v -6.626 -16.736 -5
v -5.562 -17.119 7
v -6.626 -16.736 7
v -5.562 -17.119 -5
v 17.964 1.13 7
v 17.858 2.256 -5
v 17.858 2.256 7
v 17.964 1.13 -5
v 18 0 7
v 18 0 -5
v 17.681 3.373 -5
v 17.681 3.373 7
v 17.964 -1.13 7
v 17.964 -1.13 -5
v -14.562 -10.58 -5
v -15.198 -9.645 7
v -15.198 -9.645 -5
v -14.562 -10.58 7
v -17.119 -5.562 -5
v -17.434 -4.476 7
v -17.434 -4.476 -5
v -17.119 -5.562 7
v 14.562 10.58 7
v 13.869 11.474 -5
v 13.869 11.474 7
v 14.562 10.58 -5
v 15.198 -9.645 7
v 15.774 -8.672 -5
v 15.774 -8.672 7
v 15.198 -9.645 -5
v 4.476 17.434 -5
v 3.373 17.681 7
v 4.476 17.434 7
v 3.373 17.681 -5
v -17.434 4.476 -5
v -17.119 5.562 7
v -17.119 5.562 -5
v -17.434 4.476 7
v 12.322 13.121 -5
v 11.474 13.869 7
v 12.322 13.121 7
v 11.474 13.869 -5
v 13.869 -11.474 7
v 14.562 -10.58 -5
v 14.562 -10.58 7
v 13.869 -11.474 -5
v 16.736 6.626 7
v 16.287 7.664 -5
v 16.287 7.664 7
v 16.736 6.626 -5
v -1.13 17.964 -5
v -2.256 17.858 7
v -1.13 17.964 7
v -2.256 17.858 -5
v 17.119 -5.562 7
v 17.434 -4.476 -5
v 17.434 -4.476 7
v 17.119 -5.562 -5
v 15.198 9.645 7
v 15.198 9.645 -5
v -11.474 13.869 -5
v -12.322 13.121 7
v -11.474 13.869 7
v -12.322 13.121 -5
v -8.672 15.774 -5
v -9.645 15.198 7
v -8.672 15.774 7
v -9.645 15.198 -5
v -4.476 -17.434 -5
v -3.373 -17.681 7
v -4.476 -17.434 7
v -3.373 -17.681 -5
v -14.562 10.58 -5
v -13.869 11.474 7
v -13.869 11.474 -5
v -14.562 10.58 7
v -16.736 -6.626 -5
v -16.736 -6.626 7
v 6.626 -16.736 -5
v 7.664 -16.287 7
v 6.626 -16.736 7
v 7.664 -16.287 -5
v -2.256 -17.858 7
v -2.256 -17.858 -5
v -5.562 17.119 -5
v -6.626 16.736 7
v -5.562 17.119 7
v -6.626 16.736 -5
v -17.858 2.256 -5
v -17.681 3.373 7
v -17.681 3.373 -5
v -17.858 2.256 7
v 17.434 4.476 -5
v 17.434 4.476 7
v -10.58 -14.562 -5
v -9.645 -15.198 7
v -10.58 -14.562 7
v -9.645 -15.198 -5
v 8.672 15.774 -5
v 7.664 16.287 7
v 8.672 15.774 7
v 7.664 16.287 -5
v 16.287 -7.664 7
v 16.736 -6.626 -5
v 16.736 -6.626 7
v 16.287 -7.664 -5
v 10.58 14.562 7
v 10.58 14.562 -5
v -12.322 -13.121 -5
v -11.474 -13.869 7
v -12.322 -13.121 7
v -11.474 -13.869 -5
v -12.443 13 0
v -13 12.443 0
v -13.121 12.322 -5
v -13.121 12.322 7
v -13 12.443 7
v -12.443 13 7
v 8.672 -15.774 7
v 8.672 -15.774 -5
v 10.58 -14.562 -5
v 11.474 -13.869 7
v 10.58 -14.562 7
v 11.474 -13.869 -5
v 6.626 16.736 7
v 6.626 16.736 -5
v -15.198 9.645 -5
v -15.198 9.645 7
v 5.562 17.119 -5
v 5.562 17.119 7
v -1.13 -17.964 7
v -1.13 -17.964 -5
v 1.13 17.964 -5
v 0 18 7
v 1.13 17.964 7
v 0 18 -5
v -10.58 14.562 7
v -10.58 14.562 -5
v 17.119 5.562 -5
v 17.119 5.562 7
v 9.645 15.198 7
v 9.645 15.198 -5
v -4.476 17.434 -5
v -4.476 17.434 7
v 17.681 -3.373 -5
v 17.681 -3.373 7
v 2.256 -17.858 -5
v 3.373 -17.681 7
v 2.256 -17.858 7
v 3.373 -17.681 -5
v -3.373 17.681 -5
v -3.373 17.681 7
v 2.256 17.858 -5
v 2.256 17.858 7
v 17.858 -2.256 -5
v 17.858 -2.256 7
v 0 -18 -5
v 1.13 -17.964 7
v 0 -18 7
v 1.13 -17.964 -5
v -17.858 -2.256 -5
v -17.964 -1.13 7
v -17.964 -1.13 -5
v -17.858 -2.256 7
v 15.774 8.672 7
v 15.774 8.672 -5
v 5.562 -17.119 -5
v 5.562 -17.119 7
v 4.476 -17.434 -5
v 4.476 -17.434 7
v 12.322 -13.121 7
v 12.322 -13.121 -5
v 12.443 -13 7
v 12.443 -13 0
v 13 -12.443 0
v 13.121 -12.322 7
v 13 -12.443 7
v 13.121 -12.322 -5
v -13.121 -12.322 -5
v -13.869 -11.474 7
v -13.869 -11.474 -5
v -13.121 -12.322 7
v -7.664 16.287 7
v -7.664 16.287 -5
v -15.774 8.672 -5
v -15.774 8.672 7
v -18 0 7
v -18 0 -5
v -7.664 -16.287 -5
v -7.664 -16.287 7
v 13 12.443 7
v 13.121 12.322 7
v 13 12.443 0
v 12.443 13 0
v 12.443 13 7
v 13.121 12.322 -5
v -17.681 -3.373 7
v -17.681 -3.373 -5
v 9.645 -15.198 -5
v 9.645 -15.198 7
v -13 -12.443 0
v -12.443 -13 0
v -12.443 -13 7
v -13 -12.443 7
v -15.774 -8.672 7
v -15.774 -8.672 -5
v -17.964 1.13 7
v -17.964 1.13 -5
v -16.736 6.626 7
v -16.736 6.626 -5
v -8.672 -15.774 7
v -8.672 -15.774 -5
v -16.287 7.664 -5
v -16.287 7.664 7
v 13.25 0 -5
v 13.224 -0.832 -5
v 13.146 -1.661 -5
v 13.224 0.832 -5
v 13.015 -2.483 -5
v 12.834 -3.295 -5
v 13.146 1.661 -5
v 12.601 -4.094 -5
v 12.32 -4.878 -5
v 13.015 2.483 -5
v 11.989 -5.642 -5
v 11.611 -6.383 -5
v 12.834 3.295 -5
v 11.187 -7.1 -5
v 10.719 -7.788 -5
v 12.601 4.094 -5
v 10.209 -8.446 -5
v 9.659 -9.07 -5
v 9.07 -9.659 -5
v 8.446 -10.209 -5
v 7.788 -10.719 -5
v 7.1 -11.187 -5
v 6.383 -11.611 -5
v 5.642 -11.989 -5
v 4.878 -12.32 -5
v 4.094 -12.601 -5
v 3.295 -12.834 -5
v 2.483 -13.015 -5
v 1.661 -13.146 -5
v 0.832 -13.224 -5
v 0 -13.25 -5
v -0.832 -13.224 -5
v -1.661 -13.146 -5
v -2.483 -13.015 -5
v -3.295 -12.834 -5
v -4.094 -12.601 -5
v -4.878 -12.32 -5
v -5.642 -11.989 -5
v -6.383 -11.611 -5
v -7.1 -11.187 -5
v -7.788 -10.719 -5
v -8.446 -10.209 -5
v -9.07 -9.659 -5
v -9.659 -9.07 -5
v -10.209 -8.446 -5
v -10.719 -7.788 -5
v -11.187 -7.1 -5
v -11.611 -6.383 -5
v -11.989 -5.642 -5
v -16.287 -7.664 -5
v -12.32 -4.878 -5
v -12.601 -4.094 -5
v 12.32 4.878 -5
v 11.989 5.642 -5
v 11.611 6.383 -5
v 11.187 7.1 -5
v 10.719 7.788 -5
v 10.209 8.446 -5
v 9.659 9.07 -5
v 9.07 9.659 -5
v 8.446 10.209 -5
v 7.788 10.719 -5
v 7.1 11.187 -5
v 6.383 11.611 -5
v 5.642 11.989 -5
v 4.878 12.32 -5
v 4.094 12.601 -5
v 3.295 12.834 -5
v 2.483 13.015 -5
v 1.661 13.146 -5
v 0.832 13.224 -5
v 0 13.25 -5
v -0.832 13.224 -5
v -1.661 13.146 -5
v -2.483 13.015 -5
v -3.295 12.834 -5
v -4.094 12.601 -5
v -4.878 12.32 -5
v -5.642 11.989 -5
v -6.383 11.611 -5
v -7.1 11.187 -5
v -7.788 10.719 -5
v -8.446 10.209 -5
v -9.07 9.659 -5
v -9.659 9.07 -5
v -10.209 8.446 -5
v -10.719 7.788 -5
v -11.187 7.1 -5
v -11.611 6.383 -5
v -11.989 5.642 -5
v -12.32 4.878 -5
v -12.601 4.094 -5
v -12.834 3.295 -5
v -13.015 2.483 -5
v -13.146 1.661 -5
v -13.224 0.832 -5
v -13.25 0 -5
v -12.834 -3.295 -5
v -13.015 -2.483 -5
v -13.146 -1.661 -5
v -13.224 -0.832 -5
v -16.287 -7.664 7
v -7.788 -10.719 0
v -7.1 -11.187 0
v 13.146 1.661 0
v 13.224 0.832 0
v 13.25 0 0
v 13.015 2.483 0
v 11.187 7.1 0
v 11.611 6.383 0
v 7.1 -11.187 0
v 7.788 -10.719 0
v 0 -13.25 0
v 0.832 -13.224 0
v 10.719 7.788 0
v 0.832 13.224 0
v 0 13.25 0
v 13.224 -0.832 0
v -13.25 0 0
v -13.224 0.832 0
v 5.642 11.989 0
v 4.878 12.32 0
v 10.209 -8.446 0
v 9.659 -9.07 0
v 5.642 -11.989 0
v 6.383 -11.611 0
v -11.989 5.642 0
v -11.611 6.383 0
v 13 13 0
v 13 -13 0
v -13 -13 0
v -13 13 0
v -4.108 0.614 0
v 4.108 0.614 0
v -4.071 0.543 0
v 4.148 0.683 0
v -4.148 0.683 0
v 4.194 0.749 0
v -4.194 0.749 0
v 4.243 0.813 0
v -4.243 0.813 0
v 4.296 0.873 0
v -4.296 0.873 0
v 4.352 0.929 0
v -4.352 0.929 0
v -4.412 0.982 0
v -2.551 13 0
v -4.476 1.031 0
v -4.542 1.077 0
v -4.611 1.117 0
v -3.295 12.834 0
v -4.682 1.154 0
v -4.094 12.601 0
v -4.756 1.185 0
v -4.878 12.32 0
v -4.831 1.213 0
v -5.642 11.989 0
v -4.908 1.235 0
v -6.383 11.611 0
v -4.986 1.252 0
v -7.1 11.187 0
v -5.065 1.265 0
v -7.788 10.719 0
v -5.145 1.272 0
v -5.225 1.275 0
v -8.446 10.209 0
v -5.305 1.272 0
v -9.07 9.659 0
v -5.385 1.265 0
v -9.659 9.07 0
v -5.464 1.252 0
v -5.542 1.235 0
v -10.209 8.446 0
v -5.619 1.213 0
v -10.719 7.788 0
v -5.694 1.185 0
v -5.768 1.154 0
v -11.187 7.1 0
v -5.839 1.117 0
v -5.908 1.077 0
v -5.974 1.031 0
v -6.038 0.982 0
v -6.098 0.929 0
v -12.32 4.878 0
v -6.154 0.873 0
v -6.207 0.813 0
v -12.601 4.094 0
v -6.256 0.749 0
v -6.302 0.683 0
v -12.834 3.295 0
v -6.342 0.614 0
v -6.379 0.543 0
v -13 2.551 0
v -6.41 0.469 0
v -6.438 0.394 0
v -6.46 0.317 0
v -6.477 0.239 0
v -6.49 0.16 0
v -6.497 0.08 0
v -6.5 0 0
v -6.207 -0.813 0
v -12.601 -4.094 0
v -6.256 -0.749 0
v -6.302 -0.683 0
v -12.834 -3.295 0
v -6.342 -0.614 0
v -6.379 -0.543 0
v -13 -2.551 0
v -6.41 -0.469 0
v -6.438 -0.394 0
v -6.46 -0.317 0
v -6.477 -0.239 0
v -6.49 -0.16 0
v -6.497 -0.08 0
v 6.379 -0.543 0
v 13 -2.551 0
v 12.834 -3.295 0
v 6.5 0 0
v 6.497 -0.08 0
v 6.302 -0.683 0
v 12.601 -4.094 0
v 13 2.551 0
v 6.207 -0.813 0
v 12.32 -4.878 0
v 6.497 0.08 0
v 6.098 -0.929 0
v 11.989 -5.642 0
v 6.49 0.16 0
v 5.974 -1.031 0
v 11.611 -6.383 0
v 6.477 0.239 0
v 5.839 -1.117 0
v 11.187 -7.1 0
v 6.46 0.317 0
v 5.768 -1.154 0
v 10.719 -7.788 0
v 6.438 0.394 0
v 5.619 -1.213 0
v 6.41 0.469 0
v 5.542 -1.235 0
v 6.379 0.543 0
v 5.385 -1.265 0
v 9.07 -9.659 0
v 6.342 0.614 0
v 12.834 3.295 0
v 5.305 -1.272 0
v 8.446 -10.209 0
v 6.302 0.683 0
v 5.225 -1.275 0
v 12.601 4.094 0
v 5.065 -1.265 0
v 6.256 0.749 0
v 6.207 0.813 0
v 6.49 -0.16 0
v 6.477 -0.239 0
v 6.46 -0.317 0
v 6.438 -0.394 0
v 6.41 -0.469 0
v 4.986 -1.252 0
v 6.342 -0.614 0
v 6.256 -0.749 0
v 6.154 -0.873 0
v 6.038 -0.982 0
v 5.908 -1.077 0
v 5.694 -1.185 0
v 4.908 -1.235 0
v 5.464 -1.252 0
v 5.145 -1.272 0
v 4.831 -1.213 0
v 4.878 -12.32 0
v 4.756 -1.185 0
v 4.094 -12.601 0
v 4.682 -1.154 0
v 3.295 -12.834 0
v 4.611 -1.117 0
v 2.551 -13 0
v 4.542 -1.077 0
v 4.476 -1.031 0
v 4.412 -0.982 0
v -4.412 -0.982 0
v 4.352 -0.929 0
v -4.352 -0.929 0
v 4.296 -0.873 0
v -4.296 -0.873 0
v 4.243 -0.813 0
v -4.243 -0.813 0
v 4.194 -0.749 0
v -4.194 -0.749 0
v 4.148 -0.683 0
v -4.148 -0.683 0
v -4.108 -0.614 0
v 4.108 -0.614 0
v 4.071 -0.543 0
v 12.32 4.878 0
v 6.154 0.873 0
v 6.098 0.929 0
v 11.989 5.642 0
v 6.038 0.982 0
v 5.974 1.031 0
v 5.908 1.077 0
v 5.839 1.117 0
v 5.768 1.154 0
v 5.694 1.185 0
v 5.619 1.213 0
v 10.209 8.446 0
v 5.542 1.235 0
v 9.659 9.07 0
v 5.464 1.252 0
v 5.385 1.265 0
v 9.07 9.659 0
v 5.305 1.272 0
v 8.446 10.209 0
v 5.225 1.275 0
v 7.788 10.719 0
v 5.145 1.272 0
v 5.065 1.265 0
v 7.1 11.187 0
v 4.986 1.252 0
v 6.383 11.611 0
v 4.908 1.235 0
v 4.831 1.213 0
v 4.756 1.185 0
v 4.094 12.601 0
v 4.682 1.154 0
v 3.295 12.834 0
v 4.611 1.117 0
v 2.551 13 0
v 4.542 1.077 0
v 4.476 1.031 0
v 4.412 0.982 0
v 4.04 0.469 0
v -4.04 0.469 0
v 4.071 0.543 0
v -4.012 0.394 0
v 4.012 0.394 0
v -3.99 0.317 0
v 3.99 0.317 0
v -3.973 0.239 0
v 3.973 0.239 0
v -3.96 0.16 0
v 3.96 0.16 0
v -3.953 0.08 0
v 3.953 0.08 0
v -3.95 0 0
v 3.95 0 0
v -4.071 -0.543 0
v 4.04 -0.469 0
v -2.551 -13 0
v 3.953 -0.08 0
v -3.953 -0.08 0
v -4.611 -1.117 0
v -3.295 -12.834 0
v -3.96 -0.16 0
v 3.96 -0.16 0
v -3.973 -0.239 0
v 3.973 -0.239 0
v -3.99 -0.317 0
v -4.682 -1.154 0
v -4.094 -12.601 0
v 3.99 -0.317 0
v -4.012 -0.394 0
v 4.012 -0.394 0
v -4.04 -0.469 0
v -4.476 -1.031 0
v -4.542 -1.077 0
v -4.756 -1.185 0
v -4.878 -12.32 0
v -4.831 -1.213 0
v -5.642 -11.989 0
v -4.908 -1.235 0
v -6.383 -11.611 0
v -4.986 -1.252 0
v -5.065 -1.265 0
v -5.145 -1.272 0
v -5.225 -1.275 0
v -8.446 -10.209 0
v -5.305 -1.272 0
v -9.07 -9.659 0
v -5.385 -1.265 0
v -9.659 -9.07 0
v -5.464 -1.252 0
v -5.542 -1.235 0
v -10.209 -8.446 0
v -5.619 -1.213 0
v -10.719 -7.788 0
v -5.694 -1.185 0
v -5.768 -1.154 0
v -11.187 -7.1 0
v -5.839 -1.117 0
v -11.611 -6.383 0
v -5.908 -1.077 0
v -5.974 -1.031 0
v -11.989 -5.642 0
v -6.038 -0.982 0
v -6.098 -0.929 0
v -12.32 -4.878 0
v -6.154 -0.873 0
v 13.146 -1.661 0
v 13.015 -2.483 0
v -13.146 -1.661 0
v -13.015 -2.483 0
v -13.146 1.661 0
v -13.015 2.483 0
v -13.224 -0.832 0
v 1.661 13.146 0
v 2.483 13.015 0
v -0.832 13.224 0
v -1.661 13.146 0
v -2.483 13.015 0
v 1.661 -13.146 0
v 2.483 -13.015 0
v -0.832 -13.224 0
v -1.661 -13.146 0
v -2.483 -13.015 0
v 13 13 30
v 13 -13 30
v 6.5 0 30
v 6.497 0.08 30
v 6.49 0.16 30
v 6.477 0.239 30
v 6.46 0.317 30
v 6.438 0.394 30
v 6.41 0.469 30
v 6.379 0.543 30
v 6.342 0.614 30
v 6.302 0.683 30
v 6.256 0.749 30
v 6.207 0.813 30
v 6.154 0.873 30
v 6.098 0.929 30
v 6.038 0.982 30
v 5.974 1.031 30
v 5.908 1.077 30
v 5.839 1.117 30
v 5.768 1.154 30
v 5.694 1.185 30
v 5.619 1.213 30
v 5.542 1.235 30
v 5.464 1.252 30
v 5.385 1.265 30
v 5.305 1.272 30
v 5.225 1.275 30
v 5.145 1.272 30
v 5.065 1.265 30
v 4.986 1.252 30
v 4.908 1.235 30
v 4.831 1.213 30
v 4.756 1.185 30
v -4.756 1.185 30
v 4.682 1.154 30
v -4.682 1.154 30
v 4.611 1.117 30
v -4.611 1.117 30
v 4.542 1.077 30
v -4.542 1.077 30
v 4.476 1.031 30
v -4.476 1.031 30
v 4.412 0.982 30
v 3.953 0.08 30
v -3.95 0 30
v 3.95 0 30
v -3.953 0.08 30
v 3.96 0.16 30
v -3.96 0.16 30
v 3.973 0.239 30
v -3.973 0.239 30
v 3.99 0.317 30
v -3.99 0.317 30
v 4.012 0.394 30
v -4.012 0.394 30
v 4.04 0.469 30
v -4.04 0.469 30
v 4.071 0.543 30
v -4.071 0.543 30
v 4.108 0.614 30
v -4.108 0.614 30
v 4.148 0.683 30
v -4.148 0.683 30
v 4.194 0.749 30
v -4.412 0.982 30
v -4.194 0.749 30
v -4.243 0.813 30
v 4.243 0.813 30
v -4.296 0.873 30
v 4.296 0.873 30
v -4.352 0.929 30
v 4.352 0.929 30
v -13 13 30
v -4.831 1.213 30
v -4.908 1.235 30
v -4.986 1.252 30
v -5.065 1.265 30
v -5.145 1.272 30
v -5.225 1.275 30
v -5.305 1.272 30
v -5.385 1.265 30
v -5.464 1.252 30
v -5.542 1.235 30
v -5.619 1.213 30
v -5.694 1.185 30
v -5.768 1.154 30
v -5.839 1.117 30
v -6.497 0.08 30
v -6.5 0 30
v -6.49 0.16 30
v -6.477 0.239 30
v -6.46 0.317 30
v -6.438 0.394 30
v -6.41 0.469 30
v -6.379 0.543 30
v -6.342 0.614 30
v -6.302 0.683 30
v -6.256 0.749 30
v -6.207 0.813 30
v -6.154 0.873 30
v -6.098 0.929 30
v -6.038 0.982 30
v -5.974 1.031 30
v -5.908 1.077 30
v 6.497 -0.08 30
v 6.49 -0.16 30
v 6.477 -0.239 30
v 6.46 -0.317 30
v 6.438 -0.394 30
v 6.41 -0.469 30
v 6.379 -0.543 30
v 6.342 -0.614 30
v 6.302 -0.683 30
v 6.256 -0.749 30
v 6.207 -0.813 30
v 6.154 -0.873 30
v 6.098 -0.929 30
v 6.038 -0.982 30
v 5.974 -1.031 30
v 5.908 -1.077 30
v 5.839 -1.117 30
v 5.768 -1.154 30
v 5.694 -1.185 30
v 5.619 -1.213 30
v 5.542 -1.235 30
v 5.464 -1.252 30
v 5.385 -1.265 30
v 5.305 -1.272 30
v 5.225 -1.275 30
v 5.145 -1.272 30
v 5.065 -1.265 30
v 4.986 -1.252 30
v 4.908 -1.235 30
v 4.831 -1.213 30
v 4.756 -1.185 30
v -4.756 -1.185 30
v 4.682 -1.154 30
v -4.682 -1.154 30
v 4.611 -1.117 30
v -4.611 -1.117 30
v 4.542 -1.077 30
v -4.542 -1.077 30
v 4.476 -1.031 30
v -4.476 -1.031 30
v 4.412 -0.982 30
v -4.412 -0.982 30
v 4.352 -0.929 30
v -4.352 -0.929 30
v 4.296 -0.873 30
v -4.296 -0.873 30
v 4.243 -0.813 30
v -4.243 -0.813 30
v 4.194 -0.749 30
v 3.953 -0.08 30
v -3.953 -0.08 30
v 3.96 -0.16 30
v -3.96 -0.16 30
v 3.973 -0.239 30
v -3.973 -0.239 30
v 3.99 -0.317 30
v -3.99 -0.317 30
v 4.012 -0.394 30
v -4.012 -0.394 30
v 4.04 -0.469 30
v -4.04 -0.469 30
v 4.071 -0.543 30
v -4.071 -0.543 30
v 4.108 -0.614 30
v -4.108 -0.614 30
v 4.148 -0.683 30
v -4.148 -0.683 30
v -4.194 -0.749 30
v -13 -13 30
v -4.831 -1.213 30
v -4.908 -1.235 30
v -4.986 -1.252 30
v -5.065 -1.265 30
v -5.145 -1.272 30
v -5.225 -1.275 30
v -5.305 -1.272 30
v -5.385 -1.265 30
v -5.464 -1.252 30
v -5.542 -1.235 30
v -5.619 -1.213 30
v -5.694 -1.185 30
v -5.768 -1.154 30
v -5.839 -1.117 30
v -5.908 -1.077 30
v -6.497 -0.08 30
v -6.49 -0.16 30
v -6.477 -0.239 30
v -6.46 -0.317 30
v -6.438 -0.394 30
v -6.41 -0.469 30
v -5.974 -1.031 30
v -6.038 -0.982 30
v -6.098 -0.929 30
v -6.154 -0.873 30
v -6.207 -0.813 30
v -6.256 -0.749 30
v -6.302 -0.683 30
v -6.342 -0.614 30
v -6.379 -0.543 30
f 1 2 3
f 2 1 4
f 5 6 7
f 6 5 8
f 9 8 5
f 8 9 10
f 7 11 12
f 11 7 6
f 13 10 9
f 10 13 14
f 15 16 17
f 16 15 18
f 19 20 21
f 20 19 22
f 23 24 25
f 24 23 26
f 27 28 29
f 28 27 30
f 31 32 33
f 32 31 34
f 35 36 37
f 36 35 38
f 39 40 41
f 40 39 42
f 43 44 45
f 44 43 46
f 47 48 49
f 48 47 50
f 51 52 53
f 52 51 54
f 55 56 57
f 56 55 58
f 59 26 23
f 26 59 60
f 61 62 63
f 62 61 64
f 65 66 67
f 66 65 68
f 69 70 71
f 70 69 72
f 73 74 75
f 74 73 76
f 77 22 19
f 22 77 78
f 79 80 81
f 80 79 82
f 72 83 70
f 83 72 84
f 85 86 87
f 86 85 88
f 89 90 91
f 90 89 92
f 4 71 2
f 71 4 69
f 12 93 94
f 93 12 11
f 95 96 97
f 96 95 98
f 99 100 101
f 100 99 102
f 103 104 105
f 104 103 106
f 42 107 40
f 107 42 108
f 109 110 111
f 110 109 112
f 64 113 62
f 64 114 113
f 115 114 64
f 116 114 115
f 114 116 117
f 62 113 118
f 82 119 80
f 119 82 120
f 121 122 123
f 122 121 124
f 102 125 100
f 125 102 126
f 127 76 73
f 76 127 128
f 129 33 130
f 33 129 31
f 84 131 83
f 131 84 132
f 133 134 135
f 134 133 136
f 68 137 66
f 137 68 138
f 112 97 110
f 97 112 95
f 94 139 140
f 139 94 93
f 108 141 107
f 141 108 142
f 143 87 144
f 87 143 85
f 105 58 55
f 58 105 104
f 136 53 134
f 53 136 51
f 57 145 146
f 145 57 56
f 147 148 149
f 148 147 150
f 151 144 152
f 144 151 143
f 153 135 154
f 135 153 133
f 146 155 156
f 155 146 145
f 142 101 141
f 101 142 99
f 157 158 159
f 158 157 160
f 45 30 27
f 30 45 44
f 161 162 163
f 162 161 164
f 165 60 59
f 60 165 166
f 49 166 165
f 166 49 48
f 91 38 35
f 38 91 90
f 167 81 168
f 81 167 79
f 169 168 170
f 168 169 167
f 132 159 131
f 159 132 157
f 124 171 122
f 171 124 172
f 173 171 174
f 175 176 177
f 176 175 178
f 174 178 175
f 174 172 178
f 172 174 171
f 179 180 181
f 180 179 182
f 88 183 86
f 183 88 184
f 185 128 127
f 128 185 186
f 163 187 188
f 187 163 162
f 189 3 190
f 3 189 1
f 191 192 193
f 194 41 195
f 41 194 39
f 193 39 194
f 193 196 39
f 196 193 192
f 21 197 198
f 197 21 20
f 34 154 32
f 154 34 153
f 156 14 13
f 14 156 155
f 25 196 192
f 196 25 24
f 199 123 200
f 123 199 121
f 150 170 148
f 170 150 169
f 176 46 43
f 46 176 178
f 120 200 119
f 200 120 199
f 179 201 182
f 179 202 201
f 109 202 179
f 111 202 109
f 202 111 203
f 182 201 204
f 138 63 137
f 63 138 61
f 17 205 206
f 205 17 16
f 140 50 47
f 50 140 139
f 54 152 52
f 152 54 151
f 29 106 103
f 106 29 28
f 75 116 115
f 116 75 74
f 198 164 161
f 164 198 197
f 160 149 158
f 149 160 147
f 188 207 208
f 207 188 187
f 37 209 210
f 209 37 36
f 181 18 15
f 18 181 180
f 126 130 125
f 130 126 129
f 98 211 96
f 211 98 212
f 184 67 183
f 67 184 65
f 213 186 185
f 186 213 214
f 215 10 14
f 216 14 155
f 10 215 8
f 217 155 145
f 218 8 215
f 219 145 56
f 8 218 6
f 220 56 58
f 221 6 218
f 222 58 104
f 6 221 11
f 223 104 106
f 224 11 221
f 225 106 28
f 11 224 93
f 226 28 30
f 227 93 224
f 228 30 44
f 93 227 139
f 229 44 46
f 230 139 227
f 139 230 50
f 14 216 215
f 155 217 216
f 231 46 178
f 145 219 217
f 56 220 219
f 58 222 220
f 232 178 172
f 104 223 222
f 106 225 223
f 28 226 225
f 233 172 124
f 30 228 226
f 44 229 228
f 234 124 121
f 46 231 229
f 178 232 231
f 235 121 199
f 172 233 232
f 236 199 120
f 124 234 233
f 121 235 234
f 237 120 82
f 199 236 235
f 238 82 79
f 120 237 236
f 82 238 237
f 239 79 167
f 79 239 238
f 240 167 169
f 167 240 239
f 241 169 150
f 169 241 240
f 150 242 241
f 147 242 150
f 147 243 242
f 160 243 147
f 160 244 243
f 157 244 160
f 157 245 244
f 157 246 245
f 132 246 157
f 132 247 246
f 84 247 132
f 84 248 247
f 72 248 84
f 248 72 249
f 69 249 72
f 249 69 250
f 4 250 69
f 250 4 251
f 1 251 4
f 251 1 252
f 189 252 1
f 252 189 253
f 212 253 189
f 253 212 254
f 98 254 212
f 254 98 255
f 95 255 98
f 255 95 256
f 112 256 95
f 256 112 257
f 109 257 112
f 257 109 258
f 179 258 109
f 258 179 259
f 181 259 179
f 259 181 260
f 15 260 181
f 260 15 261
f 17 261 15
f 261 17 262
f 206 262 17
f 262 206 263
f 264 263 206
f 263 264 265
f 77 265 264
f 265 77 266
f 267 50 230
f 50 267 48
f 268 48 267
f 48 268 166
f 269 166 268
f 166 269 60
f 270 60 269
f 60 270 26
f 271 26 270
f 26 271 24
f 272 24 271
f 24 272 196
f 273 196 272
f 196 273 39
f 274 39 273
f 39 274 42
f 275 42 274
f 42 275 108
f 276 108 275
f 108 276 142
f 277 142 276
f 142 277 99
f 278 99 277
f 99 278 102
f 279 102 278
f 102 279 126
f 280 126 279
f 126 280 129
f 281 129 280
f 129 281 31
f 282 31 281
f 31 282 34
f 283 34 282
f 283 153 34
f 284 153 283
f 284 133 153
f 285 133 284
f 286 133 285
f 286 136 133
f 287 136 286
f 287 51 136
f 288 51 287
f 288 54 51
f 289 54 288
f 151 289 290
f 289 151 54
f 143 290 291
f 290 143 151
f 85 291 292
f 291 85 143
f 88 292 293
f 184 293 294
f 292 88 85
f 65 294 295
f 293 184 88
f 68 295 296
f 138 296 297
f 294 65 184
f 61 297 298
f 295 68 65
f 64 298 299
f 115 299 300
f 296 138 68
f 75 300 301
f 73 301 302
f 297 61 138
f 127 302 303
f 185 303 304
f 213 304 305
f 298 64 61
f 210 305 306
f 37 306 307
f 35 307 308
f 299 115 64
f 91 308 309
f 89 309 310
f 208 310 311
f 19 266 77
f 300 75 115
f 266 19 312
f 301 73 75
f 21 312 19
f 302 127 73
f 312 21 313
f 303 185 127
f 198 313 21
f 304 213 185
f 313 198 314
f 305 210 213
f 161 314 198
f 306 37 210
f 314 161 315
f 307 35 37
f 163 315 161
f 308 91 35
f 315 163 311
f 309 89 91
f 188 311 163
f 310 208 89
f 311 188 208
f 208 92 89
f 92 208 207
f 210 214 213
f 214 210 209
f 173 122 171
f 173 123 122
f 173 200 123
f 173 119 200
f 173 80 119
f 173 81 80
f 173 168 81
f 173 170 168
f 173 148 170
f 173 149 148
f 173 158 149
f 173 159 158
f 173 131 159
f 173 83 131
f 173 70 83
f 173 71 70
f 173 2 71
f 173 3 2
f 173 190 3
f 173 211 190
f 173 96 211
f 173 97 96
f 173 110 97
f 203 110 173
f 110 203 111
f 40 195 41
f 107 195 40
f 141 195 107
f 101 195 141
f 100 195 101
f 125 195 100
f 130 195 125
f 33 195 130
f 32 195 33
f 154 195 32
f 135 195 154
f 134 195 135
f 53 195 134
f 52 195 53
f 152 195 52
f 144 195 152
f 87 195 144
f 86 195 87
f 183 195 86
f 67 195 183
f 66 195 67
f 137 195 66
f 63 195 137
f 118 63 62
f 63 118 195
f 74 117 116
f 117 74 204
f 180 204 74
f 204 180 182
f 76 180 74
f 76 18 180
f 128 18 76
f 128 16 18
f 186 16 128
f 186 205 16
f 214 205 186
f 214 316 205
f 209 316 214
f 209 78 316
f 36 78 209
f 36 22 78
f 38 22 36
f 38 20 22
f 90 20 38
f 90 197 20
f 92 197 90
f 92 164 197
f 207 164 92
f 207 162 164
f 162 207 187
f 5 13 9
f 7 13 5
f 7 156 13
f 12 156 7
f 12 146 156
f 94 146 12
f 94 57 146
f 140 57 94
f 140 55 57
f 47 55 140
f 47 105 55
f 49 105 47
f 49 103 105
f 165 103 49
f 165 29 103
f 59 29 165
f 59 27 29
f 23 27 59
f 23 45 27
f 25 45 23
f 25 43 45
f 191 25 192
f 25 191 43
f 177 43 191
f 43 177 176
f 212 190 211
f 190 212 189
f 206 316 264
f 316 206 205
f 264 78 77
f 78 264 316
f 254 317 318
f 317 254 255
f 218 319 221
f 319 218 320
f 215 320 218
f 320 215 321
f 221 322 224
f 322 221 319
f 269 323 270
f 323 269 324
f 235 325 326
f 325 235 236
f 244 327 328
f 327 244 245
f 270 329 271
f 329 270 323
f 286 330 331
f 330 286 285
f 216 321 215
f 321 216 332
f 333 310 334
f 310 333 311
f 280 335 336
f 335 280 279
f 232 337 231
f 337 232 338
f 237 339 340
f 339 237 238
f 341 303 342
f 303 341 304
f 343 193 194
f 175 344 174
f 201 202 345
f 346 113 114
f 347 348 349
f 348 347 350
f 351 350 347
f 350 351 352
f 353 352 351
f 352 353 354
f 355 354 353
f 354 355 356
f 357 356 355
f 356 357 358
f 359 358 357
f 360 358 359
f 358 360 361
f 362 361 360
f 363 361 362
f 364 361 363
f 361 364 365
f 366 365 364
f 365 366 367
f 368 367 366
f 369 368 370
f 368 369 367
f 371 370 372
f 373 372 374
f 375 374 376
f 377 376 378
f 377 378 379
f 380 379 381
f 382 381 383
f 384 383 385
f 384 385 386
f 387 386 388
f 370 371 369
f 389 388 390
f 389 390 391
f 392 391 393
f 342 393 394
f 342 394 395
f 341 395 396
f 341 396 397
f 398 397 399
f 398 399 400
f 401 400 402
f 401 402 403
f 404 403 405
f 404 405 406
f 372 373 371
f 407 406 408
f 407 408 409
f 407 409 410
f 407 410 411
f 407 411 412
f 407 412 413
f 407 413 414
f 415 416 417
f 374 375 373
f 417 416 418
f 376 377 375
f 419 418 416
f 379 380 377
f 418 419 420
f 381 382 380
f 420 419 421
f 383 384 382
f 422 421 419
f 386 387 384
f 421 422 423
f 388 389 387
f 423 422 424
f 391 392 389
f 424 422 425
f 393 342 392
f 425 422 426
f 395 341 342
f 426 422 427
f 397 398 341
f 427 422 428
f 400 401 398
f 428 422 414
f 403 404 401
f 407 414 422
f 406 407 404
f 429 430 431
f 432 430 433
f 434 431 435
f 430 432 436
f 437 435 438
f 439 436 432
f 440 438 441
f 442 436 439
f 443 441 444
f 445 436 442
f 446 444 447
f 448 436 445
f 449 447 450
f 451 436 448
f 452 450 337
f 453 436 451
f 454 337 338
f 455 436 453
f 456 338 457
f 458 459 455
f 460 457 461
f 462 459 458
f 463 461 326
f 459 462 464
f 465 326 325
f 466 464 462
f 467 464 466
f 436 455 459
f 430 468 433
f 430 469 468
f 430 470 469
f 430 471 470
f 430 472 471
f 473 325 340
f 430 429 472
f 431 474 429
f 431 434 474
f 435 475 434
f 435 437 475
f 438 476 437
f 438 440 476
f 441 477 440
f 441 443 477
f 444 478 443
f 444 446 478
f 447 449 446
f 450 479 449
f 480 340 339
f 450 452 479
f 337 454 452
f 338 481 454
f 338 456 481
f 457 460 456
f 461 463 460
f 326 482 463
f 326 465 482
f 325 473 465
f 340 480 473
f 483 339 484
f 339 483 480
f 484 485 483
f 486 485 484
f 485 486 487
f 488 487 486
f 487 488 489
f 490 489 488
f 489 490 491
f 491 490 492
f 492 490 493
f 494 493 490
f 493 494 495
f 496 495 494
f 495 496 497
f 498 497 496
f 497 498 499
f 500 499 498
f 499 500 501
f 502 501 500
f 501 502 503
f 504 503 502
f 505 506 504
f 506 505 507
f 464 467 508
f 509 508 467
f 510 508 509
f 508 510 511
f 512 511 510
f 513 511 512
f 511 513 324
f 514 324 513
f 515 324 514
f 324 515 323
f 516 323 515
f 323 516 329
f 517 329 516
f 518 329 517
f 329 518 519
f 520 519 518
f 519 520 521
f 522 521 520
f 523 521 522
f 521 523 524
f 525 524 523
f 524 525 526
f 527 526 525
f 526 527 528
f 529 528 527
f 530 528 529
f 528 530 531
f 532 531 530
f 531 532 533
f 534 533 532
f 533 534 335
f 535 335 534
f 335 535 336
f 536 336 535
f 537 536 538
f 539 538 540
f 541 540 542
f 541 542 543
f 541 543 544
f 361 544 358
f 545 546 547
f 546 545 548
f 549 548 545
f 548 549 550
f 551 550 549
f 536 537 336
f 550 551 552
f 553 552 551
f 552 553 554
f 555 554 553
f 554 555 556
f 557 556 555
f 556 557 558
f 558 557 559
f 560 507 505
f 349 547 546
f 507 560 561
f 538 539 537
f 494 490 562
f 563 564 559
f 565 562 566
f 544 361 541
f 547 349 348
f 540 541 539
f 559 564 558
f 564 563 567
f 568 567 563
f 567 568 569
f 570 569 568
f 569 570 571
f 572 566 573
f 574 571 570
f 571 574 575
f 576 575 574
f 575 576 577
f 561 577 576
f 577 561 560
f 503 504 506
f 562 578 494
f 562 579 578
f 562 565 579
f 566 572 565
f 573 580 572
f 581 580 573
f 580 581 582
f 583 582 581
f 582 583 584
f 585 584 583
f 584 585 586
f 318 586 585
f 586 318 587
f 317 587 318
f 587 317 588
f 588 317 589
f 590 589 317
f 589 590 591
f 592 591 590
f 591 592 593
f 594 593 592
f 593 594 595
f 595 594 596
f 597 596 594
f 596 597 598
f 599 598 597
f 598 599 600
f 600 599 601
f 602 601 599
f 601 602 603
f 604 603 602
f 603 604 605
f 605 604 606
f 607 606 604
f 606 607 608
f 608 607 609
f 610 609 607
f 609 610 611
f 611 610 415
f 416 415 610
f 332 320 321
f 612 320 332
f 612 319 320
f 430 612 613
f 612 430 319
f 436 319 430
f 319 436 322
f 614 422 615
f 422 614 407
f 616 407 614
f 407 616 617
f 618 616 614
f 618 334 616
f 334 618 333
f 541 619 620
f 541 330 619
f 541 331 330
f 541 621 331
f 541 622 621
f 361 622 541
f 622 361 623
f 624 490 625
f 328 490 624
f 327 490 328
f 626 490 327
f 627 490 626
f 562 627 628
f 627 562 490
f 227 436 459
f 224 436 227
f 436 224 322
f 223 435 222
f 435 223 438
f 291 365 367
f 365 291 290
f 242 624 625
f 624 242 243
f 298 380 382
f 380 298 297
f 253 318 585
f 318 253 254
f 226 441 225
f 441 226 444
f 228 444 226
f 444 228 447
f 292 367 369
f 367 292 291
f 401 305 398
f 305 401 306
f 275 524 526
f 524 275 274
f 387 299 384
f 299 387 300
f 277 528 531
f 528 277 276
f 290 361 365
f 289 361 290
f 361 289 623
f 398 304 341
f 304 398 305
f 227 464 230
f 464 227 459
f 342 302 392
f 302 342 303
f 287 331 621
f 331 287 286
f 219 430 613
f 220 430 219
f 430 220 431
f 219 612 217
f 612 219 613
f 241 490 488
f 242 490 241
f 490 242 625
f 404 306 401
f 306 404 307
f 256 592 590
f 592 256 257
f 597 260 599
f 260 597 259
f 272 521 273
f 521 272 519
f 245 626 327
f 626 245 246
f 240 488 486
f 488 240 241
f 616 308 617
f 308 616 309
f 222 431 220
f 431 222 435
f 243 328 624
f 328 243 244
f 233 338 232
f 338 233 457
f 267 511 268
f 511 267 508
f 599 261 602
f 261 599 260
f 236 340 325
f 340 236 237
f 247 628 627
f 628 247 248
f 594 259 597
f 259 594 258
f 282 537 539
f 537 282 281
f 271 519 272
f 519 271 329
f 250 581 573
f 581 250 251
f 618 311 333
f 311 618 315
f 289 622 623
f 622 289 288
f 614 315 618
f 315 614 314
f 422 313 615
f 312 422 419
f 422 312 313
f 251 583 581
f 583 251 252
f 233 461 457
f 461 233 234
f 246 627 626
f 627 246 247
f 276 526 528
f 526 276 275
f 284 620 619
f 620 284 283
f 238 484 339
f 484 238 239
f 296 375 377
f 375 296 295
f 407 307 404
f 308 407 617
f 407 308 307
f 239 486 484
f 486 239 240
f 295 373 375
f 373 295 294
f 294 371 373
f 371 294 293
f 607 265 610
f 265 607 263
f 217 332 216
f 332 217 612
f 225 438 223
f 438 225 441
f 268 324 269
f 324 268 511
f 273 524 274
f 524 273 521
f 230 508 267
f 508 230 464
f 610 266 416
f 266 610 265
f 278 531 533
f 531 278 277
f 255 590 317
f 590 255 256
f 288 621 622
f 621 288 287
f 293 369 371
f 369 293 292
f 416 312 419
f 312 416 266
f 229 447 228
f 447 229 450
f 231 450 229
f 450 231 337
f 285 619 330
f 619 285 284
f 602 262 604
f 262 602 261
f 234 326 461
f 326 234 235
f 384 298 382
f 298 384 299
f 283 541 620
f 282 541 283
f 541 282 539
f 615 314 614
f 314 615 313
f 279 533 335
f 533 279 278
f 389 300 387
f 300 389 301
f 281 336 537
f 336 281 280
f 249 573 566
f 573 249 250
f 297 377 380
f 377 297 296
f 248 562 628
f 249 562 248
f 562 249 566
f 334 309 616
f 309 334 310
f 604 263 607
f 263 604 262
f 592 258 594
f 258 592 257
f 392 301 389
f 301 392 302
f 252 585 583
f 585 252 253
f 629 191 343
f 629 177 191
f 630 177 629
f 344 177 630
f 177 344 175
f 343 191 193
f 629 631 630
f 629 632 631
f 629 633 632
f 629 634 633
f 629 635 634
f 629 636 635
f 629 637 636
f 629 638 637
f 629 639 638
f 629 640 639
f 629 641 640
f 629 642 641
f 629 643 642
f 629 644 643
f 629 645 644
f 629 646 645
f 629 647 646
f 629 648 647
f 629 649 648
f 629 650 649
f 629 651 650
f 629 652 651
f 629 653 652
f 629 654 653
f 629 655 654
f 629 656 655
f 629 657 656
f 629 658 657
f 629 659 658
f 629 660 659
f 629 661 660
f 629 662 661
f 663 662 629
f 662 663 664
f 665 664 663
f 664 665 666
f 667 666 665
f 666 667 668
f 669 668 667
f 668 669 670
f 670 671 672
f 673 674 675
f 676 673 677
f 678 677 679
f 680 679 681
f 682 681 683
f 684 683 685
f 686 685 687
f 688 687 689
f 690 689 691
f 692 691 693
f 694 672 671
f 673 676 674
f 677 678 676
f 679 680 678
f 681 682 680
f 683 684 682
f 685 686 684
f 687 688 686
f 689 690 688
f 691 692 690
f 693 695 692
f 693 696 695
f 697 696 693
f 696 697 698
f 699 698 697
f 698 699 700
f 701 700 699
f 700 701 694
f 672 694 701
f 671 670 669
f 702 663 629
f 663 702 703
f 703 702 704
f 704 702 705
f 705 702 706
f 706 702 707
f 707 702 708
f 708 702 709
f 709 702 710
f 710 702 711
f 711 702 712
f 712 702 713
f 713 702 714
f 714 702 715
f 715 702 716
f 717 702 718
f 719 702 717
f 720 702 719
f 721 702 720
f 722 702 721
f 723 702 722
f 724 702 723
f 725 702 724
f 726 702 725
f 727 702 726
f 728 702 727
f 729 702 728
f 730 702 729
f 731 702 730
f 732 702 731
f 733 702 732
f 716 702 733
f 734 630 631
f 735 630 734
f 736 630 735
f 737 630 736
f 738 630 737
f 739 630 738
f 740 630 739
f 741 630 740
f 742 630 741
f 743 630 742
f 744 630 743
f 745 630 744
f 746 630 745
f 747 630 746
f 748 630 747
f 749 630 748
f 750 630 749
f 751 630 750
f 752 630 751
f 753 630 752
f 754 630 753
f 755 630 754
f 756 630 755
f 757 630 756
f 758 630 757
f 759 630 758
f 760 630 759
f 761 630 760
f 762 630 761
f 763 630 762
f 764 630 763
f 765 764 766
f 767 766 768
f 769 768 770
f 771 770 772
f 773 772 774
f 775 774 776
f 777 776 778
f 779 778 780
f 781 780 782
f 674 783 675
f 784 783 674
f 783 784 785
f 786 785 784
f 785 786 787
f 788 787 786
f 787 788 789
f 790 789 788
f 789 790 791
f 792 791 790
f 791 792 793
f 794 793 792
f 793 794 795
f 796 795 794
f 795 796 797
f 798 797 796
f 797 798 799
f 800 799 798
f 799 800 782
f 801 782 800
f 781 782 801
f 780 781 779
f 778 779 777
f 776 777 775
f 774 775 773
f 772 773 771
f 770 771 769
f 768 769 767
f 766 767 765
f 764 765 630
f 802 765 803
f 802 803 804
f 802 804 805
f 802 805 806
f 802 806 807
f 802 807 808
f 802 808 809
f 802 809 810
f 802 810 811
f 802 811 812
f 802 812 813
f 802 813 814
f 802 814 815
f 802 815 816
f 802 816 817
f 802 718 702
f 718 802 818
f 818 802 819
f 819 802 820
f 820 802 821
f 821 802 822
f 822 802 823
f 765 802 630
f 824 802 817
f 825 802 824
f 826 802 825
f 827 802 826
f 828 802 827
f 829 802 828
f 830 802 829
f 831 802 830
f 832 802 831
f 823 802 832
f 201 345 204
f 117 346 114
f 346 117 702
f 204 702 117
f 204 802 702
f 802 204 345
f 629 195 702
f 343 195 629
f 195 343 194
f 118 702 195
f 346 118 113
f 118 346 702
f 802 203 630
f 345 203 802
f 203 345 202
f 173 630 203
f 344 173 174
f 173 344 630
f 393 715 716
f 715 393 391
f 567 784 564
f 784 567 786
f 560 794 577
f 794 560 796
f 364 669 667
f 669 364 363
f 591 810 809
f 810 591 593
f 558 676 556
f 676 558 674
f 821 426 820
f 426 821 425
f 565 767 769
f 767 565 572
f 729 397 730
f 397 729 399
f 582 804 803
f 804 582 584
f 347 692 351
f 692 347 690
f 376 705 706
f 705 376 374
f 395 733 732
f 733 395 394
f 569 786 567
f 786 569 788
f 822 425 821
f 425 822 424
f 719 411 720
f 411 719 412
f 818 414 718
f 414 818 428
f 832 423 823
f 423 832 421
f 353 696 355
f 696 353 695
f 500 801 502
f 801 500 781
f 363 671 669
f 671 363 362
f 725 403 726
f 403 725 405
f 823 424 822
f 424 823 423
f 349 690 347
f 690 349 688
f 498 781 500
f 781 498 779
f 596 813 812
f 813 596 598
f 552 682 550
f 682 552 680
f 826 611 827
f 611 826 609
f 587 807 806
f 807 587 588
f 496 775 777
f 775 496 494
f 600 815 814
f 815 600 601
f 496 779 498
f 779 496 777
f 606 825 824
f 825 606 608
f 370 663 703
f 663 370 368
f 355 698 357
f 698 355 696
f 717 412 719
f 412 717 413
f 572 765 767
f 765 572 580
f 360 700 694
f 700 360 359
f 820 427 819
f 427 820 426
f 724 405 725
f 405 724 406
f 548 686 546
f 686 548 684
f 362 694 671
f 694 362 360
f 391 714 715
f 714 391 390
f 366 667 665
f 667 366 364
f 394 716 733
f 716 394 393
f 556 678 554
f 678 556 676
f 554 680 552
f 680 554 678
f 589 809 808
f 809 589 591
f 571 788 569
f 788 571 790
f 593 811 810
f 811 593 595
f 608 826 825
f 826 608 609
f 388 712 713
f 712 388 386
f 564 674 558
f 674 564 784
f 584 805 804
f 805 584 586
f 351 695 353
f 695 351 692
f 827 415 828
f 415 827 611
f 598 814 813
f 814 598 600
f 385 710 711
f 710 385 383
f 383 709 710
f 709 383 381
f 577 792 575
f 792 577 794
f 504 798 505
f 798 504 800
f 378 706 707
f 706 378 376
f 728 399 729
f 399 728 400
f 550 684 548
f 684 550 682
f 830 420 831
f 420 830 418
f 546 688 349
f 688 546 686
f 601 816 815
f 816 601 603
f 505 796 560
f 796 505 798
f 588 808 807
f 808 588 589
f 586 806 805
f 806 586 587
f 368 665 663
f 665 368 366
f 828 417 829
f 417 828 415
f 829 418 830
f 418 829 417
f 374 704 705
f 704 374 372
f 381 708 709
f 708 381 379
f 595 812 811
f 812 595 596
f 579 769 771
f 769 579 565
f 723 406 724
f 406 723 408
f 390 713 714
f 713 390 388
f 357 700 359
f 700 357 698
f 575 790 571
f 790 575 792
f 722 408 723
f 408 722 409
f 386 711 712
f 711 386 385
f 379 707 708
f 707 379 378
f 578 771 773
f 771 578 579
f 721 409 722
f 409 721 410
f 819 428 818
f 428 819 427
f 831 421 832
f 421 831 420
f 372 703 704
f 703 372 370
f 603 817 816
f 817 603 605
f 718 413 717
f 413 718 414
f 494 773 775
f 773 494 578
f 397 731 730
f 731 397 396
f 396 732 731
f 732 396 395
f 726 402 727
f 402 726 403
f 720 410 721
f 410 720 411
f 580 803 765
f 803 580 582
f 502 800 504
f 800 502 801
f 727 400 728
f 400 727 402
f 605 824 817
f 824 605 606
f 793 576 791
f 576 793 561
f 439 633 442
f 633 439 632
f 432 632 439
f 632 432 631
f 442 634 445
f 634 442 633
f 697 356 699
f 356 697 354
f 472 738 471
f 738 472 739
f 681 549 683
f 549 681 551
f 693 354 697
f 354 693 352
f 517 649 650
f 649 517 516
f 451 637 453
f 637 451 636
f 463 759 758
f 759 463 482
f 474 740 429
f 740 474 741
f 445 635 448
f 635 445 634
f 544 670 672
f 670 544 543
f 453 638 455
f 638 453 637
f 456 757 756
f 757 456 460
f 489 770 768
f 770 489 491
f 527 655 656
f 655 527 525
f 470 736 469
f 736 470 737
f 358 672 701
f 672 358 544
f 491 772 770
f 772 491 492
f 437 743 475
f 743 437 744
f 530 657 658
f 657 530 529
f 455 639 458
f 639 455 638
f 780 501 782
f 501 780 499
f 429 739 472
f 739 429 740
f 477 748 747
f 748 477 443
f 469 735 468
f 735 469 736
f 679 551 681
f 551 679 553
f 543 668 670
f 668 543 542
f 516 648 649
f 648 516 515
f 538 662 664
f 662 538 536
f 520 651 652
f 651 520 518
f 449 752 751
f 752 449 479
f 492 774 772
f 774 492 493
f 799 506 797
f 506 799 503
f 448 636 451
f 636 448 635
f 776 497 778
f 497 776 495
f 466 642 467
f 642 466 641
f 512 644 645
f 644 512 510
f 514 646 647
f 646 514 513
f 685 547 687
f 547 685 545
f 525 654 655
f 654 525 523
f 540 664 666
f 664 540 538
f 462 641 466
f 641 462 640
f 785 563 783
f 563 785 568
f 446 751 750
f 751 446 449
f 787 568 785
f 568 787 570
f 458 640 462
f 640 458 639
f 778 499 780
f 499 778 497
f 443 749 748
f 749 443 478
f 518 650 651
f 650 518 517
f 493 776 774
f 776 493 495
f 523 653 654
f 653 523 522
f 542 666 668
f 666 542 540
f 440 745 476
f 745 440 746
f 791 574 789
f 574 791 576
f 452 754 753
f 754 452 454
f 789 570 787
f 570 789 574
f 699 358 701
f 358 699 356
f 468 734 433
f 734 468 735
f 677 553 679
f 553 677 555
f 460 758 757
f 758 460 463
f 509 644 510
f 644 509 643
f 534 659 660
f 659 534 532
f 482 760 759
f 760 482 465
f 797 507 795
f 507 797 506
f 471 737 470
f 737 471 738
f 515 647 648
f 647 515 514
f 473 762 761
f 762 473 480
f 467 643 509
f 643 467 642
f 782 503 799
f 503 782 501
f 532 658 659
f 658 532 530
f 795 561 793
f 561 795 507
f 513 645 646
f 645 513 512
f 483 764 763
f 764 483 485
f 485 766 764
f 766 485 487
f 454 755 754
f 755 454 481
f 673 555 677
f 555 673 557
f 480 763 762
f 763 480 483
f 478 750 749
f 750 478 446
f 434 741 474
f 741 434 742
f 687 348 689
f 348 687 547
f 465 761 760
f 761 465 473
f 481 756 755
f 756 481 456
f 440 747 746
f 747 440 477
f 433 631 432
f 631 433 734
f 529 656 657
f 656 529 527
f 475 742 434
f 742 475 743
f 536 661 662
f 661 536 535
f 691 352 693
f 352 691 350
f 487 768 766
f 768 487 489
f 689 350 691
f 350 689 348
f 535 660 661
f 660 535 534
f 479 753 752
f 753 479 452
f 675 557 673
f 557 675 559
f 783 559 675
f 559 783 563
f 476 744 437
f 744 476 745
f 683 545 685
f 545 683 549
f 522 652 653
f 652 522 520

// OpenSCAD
/**
 * Motor Brush Cap Remover Tool
 *
 * Description:
 * Specialized 3D printable tool to safely remove motor brush caps on Brushed DC Motors
 * for maintenance access when the caps have been damaged. Features two pin holes 
 * that when drilled into the cap, engage the cap in lieu of the slot. Square drive 
 * shaft for grip with an adjustable wrench. 
 *
 * Usage:
 * 1. Open this file in OpenSCAD.
 * 2. Render (F6) and export as STL.
 * 3. 3D print the tool (no supports needed).
 * 4. Drill the holes through the tool into the cap.
 * 5. Use nails through the holes to remove the stuck cap.
 *
 * Photos and instructions online at https://github.com/AntzCode/OpenSCAD-Projects
 *
 * Parameters (customizable at top):
 * - cube_length: Length of the handle (30mm default)
 * - cube_width: Width of the handle (26mm default)
 * - cylinder_width_inner/outer: Grip dimensions
 * - pin_width/distance: Pin dimensions for cap engagement
 *
 * Author: Anthony Gallon
 * Owner/Licensor: AntzCode Ltd <https://www.antzcode.com>
 * Contact: https://github.com/AntzCode
 *
 * License:
 * GNU General Public License v3.0 (GPL-3.0)
 * See ../../LICENSE for full license details.
 */

cube_length=30;
cube_width=26;
cylinder_overlap=7;
cylinder_inner_inset=5;
cylinder_width_inner=26.5;
cylinder_width_outer=36;
pin_width=2.55;
pin_outer_distance=13;

function cylinder_length() = cylinder_inner_inset + cylinder_overlap;

function pin_length() =cylinder_length()+cylinder_overlap+cube_length;


function pin_offset() = (pin_outer_distance-pin_width)/2;

module pin_hole() {
    cylinder(h=pin_length(), d=pin_width, $fn = 100);
}

difference() {

    union() {
        // draw the cube
        translate([0, 0, cube_length/2])
            cube([cube_width, cube_width, cube_length], center=true);

        difference() {
            // draw the outer cylinder
            translate([0, 0, -(cylinder_inner_inset + cylinder_overlap)/2 + cylinder_overlap])
            cylinder(h=(cylinder_inner_inset + cylinder_overlap), d=cylinder_width_outer, center=true, $fn = 100);

            // carve-out the inner cylinder
            color("red") translate([0, 0, -(cylinder_inner_inset)/2])
            cylinder(h=cylinder_inner_inset, d=cylinder_width_inner, center=true, $fn = 100);

        }
    }

    // pin hole 1
    translate([-pin_offset(), 0, -cube_length/2]) 
    color("green") pin_hole();

    // pin hole 2
    translate([pin_offset(), 0, -cube_length/2]) 
    color("green") pin_hole();


}
